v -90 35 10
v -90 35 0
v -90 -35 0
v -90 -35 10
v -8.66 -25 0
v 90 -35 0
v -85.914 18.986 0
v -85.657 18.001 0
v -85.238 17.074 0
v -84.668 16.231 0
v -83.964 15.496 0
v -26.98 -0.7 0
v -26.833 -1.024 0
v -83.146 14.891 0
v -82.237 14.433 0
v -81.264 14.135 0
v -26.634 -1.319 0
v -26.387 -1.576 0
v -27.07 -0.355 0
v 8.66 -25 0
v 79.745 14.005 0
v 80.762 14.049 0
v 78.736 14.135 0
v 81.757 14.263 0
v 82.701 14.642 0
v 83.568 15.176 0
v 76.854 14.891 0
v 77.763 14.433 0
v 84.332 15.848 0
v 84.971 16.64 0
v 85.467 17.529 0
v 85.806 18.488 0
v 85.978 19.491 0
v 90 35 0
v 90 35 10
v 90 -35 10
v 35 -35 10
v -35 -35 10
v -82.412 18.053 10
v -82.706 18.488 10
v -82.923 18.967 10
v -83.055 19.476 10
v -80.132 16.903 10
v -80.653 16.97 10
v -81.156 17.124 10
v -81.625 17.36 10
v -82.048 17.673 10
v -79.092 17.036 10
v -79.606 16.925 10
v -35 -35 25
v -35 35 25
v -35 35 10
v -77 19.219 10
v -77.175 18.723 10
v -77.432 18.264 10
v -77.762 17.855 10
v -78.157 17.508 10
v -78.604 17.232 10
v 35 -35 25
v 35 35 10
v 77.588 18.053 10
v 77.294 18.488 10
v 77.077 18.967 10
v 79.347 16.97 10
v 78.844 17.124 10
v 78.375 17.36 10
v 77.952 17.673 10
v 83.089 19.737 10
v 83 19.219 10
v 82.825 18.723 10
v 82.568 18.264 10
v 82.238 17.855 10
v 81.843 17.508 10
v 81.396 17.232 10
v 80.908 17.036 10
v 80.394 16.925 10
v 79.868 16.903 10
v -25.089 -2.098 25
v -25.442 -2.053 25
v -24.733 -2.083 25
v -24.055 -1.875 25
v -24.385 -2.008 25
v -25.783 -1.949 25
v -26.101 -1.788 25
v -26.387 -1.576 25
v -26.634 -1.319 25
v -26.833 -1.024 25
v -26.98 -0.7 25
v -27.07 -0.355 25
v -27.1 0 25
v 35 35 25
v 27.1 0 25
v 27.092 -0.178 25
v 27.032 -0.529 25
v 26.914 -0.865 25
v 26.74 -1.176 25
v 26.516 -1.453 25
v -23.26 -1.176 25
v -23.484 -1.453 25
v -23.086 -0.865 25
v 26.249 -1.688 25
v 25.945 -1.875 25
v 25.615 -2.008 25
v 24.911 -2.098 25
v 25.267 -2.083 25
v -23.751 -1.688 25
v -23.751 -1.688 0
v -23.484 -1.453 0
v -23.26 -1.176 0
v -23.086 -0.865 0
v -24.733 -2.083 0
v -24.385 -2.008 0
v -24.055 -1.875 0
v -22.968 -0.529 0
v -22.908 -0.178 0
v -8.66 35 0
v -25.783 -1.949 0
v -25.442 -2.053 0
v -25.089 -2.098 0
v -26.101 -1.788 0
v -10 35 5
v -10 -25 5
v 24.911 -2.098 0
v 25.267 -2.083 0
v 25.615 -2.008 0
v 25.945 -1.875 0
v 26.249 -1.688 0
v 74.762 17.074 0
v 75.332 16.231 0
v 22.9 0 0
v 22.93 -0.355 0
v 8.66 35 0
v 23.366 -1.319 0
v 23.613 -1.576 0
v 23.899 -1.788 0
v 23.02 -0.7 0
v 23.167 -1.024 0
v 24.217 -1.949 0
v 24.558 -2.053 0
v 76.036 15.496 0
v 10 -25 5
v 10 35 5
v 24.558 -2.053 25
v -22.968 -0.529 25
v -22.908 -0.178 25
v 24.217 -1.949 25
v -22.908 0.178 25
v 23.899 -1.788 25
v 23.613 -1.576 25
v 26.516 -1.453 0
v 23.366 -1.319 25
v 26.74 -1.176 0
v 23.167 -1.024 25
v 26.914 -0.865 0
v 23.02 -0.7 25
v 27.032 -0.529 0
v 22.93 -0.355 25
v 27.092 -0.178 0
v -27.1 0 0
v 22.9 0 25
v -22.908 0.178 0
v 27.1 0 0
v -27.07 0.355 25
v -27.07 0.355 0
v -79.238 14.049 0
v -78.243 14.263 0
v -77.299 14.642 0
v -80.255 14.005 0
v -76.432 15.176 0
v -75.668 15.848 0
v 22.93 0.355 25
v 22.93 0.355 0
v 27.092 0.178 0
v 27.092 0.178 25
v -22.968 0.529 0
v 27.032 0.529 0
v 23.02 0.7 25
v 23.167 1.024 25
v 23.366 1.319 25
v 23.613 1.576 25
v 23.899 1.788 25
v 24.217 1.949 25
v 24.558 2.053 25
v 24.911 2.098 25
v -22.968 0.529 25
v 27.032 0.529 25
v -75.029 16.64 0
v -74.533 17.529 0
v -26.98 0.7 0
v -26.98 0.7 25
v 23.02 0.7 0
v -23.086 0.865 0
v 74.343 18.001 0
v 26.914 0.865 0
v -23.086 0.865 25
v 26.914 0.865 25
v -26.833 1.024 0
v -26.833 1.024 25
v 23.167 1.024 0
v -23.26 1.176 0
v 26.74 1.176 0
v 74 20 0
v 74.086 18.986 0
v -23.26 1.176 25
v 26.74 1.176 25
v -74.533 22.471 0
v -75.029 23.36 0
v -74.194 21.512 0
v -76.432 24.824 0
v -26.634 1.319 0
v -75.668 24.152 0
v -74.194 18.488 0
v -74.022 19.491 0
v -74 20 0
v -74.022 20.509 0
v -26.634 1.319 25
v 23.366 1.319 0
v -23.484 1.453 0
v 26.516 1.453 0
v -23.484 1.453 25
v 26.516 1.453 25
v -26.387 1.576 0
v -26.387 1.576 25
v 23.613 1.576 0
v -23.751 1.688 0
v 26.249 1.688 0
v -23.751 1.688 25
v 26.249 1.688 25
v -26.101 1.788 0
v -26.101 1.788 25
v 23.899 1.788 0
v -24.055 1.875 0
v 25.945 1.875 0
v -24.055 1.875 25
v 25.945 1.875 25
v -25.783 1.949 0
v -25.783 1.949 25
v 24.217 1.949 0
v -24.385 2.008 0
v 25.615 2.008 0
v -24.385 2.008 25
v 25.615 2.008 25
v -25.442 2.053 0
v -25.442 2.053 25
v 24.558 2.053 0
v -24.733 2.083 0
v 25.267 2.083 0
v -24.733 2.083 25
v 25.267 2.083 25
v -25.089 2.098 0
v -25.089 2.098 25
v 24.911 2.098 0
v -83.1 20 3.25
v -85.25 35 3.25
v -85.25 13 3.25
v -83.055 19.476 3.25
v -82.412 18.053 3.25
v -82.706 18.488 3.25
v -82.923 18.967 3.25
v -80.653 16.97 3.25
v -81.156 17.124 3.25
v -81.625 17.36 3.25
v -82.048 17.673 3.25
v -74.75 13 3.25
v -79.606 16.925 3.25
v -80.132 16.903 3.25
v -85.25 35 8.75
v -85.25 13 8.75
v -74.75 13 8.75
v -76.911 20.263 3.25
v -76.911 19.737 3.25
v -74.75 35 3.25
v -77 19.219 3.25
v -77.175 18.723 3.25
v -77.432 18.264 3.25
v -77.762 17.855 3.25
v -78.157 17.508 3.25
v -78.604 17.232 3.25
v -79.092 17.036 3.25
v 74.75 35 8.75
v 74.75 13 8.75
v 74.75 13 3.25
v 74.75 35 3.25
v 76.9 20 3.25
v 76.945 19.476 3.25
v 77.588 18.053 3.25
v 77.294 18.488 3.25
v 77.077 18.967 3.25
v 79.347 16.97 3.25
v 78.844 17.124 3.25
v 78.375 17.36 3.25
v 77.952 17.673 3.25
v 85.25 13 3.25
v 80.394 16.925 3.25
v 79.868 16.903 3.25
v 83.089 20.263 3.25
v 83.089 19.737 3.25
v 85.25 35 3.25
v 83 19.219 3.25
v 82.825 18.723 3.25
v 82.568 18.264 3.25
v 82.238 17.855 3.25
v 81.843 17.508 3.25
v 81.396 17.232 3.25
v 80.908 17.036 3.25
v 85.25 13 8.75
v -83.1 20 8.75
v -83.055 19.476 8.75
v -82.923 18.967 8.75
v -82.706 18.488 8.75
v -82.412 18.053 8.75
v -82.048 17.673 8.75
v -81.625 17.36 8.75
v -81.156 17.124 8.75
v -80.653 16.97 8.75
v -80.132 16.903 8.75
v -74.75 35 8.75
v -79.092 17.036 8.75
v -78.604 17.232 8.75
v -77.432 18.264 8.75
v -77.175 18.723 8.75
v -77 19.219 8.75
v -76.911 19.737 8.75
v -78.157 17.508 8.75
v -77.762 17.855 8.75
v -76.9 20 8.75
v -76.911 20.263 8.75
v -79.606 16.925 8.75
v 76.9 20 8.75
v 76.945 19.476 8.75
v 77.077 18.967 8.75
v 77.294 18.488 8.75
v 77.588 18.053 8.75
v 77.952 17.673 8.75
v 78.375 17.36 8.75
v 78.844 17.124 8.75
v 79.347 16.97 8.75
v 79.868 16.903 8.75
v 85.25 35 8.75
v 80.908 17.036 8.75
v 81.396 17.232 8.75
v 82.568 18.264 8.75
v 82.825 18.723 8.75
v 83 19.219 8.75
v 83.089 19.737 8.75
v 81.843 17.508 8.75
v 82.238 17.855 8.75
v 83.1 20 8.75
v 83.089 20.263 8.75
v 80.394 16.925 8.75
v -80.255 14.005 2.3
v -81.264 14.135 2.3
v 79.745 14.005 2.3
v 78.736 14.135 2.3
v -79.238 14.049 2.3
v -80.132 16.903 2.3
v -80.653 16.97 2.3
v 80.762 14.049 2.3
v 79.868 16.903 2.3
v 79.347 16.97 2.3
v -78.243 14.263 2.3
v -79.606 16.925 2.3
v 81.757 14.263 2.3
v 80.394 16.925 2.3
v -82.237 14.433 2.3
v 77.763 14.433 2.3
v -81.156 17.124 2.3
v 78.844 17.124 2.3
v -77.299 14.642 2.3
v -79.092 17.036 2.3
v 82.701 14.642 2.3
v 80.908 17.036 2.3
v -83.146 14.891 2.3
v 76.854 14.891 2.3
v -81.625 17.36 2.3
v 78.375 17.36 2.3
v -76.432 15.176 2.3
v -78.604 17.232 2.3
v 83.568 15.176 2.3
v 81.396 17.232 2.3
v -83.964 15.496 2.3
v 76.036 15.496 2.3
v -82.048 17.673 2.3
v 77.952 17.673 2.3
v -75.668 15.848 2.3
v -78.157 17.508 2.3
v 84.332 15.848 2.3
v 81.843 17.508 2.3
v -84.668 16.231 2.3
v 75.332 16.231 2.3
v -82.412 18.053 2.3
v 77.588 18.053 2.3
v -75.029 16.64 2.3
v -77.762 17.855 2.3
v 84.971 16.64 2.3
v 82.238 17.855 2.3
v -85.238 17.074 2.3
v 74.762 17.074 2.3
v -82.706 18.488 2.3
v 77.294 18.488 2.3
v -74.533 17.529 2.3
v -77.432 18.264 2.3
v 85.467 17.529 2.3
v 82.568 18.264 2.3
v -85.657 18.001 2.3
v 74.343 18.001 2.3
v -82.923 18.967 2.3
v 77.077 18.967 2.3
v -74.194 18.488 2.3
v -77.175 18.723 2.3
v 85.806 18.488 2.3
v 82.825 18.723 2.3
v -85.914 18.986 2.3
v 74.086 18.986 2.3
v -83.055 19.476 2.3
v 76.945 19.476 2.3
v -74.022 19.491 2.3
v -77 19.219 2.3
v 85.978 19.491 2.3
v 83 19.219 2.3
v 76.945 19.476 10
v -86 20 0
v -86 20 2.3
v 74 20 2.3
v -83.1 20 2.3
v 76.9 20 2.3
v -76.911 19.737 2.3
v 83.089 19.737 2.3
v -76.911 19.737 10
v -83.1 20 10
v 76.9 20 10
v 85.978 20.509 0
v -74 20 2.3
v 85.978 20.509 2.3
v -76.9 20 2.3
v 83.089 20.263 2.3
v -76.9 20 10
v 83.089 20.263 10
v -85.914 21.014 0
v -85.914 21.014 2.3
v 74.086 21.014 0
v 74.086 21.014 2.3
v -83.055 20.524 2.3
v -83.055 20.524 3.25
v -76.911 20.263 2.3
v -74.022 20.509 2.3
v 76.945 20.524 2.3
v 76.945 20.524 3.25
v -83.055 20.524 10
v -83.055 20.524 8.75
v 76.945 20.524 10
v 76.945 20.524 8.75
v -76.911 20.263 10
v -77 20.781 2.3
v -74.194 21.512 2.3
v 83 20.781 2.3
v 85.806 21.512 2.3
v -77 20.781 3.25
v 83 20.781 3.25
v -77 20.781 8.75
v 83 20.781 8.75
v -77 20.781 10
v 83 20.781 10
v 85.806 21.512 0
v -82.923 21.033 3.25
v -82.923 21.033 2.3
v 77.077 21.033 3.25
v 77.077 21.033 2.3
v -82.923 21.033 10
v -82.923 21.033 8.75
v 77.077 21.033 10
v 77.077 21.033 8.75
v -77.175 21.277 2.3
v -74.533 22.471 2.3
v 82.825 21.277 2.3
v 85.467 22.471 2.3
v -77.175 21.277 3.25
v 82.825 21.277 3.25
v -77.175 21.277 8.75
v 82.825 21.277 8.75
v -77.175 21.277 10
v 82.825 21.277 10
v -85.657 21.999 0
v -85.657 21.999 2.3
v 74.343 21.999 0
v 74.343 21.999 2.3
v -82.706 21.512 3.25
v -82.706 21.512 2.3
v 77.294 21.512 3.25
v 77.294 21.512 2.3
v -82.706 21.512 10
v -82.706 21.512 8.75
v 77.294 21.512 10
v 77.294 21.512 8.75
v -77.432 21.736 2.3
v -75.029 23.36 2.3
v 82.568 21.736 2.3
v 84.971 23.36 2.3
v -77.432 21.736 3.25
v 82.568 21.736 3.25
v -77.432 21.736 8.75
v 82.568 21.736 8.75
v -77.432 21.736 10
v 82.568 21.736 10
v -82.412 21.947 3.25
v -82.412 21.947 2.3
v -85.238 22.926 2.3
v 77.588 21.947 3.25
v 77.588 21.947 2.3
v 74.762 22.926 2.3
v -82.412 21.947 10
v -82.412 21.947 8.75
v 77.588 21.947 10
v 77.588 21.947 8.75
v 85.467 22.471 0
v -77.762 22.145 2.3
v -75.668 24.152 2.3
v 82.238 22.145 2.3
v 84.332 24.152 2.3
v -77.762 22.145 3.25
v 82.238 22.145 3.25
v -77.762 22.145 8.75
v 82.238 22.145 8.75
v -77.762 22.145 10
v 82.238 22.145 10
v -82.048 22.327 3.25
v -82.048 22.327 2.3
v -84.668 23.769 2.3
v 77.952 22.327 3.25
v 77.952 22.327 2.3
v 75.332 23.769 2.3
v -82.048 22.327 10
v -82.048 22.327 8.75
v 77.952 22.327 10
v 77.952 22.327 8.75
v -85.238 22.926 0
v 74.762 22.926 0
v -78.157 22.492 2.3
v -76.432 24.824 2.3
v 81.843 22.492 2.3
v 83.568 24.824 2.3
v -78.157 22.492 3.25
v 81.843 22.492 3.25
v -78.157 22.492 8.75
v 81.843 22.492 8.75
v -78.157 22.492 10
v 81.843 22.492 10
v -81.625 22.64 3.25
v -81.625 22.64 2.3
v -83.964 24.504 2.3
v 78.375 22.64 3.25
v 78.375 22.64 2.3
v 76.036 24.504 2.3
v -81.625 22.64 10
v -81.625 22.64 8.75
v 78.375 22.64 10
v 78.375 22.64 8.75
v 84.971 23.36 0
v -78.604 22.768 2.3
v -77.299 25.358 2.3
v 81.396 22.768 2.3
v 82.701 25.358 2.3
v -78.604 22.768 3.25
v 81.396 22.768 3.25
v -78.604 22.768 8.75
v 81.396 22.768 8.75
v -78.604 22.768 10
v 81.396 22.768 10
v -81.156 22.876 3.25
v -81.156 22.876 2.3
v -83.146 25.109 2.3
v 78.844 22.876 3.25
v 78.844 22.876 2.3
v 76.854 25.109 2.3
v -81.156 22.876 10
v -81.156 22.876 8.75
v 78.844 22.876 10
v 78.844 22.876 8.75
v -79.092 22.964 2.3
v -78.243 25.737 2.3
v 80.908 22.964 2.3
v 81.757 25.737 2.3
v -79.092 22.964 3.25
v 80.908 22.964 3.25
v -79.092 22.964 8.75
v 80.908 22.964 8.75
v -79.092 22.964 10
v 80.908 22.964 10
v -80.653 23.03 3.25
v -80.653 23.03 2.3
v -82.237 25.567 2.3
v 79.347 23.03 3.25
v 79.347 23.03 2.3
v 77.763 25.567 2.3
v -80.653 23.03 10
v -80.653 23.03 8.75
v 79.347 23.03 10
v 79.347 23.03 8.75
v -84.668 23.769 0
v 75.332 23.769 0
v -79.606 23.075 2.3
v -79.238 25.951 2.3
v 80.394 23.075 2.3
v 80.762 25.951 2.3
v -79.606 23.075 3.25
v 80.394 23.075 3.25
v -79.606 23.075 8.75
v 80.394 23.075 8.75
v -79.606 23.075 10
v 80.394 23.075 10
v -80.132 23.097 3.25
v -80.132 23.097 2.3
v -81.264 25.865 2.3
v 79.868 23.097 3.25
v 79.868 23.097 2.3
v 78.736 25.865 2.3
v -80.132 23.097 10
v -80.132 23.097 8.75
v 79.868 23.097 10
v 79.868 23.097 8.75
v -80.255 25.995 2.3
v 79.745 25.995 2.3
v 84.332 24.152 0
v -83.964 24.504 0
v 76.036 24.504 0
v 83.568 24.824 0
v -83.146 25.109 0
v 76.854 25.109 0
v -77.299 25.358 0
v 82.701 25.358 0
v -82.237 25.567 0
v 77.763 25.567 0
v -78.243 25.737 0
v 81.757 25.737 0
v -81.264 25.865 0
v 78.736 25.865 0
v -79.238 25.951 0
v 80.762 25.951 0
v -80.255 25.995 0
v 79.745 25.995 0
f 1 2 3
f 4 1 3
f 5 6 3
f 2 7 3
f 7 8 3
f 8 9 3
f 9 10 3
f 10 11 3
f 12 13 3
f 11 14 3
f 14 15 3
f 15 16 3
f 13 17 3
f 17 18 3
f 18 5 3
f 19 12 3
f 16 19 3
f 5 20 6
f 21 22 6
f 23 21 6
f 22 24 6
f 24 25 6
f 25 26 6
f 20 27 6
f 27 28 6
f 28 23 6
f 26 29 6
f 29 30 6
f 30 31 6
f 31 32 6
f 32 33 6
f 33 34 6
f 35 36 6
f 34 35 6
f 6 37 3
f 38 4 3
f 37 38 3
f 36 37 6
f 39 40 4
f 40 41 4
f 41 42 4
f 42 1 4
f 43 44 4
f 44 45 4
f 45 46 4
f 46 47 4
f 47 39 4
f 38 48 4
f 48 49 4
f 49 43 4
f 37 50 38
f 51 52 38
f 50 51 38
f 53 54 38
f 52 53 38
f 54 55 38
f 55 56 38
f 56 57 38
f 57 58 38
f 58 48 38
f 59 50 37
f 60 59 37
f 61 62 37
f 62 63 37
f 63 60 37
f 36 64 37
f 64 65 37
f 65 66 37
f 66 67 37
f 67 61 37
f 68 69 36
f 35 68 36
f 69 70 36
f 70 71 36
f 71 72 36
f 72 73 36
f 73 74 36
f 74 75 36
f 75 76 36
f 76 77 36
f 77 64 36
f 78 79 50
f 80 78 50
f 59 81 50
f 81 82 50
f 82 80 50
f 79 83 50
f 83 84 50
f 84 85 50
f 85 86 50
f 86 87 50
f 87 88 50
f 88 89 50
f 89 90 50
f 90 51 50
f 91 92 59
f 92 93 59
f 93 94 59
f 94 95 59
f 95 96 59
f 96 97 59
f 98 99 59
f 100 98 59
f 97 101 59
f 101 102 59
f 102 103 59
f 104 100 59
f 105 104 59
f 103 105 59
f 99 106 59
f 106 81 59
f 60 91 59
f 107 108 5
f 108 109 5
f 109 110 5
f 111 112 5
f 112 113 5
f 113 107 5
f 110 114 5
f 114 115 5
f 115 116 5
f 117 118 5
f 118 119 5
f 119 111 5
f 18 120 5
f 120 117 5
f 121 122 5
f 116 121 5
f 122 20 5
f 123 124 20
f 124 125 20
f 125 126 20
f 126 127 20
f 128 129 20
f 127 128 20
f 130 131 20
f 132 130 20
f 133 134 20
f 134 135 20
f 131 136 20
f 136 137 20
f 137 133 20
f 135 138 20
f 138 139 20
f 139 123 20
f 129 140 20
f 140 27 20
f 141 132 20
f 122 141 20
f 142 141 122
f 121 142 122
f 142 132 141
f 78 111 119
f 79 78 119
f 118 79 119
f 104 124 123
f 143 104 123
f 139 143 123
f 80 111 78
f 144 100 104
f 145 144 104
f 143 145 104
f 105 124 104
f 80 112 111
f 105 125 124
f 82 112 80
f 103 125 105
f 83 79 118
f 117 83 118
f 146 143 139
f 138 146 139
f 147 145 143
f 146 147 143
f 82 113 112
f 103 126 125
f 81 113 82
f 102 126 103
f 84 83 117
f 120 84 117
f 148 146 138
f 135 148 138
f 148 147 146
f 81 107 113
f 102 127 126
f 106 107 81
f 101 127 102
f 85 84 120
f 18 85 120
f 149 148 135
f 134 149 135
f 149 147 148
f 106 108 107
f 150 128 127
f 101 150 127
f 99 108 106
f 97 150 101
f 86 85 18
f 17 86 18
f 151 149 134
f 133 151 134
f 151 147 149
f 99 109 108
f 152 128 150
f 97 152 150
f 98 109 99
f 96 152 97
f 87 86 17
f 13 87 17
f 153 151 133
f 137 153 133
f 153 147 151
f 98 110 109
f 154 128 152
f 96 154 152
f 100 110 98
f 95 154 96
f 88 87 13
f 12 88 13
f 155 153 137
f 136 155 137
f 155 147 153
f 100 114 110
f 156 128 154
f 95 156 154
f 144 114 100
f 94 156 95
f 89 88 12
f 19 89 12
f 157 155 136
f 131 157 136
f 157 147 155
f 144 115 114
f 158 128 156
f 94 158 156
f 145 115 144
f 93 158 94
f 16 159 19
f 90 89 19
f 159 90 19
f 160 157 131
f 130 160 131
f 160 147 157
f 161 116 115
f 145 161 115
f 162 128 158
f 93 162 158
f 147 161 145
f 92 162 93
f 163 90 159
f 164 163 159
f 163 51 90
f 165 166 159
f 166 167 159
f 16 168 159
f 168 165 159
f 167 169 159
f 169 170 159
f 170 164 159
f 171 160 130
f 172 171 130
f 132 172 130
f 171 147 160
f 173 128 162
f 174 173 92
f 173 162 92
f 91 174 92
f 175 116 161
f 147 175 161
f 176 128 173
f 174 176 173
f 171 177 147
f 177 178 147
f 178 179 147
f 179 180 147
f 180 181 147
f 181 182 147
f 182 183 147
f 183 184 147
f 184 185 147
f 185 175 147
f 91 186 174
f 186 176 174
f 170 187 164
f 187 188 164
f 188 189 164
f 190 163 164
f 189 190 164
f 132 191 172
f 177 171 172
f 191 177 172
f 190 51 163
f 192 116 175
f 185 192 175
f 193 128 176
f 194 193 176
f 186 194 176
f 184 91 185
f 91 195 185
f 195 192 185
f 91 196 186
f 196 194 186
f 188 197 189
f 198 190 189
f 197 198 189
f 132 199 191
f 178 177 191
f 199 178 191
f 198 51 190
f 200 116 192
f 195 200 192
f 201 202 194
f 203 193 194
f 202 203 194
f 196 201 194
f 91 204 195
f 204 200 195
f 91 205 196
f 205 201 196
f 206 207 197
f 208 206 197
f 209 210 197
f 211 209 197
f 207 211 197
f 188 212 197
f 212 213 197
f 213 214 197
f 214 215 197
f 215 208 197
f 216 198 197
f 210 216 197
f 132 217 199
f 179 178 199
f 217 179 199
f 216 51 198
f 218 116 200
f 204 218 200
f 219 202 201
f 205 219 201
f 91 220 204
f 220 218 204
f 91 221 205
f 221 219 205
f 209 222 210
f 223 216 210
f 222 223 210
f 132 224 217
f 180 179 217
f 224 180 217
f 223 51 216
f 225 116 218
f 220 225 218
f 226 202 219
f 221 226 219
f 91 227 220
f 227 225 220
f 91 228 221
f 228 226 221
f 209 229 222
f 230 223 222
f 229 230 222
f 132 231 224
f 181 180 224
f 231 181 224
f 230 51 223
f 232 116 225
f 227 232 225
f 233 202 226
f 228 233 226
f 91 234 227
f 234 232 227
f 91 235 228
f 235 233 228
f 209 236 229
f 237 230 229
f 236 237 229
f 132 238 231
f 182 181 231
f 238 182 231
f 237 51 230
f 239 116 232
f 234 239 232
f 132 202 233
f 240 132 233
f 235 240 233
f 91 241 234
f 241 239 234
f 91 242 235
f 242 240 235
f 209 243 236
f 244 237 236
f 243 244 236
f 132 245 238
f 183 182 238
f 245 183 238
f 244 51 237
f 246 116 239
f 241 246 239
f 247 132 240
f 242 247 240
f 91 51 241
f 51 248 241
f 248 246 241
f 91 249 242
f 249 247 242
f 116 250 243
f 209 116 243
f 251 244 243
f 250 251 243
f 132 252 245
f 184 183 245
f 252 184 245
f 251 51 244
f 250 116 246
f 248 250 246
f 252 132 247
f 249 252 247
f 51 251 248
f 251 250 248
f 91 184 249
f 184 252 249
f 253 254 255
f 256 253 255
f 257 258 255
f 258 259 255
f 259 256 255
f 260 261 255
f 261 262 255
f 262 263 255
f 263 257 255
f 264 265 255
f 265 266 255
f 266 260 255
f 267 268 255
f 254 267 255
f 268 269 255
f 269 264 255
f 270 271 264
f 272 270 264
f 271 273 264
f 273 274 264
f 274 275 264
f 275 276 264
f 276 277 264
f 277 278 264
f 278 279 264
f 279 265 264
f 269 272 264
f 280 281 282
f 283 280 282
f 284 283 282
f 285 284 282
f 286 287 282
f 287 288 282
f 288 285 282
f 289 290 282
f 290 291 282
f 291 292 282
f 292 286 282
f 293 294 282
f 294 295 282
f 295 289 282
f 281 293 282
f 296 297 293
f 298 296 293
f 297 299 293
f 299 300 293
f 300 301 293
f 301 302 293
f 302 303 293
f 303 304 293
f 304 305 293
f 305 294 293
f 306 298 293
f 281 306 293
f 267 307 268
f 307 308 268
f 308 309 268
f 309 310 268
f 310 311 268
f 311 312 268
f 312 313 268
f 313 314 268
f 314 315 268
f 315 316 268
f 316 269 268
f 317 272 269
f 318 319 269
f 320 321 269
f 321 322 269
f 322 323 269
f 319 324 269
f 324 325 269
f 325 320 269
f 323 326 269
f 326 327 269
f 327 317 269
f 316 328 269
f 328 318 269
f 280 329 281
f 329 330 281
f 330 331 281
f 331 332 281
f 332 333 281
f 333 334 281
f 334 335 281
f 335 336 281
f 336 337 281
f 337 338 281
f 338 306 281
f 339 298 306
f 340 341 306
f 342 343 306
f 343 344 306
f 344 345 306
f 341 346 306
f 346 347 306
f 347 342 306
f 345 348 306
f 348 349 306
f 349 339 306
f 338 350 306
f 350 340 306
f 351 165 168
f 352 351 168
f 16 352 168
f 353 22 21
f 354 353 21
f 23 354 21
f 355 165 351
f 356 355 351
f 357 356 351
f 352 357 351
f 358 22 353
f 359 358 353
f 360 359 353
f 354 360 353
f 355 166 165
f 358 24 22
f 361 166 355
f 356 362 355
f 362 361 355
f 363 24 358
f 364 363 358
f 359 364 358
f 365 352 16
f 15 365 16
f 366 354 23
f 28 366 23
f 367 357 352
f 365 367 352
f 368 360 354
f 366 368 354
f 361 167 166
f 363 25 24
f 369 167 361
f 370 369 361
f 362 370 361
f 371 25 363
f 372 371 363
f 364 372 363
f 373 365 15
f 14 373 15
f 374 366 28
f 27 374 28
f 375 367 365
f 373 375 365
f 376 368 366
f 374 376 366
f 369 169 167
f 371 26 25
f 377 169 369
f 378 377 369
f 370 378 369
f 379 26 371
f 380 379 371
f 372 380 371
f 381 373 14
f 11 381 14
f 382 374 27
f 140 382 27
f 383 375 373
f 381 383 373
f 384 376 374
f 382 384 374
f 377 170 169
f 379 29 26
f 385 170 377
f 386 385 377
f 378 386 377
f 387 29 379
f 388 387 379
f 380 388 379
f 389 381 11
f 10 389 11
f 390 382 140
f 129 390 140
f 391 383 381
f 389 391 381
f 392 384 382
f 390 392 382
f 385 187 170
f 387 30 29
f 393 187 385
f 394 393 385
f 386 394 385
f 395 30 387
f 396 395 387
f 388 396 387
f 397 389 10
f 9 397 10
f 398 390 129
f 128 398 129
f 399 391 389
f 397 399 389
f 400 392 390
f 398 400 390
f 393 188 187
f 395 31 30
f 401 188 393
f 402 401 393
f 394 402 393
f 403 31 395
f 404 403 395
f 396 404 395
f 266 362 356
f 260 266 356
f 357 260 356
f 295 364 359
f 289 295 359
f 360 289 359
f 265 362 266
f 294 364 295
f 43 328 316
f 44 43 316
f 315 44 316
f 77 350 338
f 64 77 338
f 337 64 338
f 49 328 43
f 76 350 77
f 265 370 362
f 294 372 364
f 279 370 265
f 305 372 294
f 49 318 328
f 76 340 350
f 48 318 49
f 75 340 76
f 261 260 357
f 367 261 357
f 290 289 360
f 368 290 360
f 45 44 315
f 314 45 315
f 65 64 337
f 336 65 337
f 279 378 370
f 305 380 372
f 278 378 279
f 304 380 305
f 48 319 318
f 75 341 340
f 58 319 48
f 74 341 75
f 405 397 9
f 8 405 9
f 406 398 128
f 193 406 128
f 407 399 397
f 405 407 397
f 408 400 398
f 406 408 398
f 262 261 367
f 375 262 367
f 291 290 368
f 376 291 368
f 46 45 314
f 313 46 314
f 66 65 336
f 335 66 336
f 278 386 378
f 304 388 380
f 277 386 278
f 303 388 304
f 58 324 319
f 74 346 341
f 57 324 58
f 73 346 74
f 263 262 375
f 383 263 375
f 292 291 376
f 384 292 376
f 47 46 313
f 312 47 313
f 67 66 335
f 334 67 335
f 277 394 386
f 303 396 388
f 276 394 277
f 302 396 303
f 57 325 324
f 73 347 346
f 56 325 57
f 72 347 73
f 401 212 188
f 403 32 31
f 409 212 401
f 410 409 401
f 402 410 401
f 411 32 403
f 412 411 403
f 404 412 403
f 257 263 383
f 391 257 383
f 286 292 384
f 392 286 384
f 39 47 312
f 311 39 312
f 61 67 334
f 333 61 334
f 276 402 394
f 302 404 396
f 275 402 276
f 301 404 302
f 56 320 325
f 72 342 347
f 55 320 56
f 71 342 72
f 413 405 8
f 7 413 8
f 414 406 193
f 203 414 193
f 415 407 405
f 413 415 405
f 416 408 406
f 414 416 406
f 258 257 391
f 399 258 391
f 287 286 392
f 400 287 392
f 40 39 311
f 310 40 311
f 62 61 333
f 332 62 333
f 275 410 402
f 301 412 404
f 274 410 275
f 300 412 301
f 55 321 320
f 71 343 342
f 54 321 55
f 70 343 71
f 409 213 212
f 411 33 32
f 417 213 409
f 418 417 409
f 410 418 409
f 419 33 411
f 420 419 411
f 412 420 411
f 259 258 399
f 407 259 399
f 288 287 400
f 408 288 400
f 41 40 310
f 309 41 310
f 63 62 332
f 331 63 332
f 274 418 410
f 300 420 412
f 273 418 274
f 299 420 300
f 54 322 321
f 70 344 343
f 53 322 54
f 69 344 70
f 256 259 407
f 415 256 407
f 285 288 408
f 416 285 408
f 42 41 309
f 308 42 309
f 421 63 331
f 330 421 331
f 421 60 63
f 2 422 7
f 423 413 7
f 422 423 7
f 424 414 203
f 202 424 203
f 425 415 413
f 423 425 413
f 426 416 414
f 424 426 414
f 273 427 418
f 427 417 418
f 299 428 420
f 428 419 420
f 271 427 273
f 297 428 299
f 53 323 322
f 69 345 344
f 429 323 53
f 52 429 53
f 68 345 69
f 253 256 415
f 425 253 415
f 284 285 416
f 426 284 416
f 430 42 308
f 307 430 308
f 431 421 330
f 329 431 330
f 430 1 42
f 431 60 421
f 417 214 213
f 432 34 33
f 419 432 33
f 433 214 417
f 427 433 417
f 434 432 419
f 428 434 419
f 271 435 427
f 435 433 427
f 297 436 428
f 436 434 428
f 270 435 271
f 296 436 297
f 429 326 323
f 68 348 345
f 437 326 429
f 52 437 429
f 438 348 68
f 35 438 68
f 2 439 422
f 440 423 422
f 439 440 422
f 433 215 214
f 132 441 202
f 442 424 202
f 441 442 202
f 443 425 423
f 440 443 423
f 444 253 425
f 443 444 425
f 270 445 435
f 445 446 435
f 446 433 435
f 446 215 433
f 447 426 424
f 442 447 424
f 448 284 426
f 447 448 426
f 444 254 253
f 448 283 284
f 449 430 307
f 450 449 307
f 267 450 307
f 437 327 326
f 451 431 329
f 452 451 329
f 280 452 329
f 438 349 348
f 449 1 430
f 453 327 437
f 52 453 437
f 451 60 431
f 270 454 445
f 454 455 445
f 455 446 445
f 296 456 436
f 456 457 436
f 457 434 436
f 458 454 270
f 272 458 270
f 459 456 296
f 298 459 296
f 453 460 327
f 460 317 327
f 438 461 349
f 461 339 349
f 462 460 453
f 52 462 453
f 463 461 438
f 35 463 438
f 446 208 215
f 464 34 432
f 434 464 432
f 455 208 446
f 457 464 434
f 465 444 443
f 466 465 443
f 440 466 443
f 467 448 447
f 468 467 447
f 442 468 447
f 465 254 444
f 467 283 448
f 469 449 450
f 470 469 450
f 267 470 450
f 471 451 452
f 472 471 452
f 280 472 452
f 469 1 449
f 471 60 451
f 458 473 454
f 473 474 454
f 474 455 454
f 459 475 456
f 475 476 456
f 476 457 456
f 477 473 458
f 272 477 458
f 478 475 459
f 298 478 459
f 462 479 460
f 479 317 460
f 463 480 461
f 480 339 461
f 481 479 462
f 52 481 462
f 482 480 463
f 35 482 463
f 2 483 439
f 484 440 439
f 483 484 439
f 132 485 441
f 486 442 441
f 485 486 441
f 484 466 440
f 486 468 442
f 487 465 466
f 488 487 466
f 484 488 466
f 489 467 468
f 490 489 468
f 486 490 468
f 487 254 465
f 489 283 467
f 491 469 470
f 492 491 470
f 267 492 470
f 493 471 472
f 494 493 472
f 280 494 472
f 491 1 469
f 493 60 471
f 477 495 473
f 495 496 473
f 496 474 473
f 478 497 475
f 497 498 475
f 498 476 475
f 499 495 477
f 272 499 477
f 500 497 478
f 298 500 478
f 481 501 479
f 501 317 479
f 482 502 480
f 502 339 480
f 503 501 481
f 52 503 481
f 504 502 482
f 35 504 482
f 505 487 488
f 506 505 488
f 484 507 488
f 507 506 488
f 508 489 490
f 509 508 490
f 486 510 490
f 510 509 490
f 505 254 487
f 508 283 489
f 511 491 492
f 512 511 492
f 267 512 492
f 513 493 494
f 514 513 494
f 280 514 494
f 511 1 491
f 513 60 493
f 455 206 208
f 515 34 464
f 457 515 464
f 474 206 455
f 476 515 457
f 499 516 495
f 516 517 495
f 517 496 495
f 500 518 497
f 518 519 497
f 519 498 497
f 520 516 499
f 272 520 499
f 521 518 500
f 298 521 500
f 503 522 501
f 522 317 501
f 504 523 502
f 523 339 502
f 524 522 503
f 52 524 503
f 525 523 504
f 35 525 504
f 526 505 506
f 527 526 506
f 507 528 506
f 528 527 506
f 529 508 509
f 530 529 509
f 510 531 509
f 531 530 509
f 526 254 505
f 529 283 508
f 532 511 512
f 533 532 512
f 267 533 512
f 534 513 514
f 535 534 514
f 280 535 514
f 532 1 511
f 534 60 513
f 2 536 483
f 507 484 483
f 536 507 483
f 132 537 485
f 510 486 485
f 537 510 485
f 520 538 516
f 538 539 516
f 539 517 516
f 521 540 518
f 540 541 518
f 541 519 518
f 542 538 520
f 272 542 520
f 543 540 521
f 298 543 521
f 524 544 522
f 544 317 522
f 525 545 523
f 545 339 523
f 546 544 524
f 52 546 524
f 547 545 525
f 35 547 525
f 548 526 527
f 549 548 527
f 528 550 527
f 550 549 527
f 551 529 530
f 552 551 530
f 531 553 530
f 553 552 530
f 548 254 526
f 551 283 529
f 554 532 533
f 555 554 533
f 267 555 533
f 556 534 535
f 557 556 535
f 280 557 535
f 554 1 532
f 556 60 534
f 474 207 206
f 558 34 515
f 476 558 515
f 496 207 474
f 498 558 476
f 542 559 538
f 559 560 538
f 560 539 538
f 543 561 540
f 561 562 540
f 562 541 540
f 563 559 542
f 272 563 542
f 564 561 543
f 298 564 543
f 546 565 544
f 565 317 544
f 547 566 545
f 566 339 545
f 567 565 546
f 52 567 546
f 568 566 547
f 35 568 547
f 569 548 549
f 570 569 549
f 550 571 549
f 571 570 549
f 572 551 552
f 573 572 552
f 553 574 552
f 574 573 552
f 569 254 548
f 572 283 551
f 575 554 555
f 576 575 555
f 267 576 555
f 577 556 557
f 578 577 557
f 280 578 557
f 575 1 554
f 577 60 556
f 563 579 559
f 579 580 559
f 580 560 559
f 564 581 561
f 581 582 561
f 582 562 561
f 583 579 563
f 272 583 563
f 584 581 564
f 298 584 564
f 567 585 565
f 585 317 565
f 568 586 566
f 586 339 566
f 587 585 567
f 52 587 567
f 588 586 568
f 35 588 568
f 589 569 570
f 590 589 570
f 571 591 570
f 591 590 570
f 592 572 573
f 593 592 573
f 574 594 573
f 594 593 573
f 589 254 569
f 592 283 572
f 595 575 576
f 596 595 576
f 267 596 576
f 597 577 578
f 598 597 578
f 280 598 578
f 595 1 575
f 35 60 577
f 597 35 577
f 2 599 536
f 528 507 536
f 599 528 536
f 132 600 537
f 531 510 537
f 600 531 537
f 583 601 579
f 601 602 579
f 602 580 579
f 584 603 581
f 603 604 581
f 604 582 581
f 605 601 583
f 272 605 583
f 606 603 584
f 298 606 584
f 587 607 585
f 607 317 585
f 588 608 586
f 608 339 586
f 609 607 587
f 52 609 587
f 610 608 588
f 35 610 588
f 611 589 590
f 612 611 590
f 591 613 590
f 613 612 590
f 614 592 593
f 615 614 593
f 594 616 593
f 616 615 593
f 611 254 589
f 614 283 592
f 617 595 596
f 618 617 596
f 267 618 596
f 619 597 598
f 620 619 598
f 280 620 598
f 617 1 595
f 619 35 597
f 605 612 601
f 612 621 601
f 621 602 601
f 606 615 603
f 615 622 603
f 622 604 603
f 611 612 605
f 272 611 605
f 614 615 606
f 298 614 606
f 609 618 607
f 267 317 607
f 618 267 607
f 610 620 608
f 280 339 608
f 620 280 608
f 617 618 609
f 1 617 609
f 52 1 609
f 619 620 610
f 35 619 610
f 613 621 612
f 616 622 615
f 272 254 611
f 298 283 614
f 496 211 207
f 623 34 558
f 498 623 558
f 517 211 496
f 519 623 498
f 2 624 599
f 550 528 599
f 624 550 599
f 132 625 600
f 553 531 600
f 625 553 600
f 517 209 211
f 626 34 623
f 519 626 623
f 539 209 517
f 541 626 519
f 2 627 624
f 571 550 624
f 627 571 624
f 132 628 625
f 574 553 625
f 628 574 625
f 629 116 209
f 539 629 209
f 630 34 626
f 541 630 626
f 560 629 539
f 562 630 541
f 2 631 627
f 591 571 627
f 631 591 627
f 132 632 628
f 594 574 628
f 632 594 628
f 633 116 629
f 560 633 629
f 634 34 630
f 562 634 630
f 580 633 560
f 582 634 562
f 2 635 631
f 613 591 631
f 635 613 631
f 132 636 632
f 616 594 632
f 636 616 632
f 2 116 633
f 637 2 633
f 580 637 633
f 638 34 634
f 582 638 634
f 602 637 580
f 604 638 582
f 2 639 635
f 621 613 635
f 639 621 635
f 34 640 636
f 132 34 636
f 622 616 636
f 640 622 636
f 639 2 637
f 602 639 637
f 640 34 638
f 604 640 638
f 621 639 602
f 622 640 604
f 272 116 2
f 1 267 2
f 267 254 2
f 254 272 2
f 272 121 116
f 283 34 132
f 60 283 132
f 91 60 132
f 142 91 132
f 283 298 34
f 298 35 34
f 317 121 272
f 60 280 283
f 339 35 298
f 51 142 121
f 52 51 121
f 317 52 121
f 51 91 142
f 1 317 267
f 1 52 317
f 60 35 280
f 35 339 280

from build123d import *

# Parameters (mm, degrees)
SKIZZE1_W                       = 180
SKIZZE1_H                       = 70
SKIZZE1_R                       = 2.1
SKIZZE1_R_2                     = 3.1
AUFSATZ_LINEAR_AUSTRAGEN2_DEPTH = 25
SKIZZE4_W                       = 55
SKIZZE4_H                       = 70
SCHNITT_LINEAR_AUSTRAGEN1_DEPTH = 15
SKIZZE5_W                       = 10.5
SKIZZE5_H                       = 5.5
SCHNITT_LINEAR_AUSTRAGEN2_DEPTH = 22
SKIZZE6_R                       = 6
SCHNITT_LINEAR_AUSTRAGEN3_DEPTH = 2.3
SCHNITT_LINEAR_AUSTRAGEN4_DEPTH = 60


with BuildPart() as part:
    # Skizze1 → Aufsatz-Linear austragen2 (new body)
    with BuildSketch(Plane.XY):
        Rectangle(SKIZZE1_W, SKIZZE1_H)
        with Locations((25, 0)):
            Circle(SKIZZE1_R, mode=Mode.SUBTRACT)
        with Locations(Location((-25, 0, 0), (0, 0, 180))):
            Circle(SKIZZE1_R, mode=Mode.SUBTRACT)
        with Locations((80, 20)):
            Circle(SKIZZE1_R_2, mode=Mode.SUBTRACT)
        with Locations(Location((-80, 20, 0), (0, 0, 180))):
            Circle(SKIZZE1_R_2, mode=Mode.SUBTRACT)
    extrude(amount=AUFSATZ_LINEAR_AUSTRAGEN2_DEPTH)

    # Skizze4 → Schnitt-Linear austragen1 (cut)
    with BuildSketch(Plane.XY.offset(25)):
        with Locations((62.5, 0)):
            Rectangle(SKIZZE4_W, SKIZZE4_H)
        with Locations((-62.5, 0)):
            Rectangle(SKIZZE4_W, SKIZZE4_H)
    extrude(amount=-SCHNITT_LINEAR_AUSTRAGEN1_DEPTH, mode=Mode.SUBTRACT)

    # Skizze5 → Schnitt-Linear austragen2 (cut)
    with BuildSketch(Plane(origin=(0, 35, 0), x_dir=(1, 0, 0), z_dir=(0, 1, 0))):
        with Locations((80, -6)):
            Rectangle(SKIZZE5_W, SKIZZE5_H)
        with Locations((-80, -6)):
            Rectangle(SKIZZE5_W, SKIZZE5_H)
    extrude(amount=-SCHNITT_LINEAR_AUSTRAGEN2_DEPTH, mode=Mode.SUBTRACT)

    # Skizze6 → Schnitt-Linear austragen3 (cut)
    with BuildSketch(Plane(origin=(0, 0, 0), x_dir=(-1, 0, 0), z_dir=(0, 0, -1))):
        with Locations((-80, 20)):
            Circle(SKIZZE6_R)
        with Locations(Location((80, 20, 0), (0, 0, 180))):
            Circle(SKIZZE6_R)
    extrude(amount=-SCHNITT_LINEAR_AUSTRAGEN3_DEPTH, mode=Mode.SUBTRACT)

    # Skizze7 → Schnitt-Linear austragen4 (cut)
    with BuildSketch(Plane(origin=(0, 35, 0), x_dir=(1, 0, 0), z_dir=(0, 1, 0))):
        Polygon((8.660254038, 0), (-8.660254038, 0), (-10, -5), (10, -5), align=None)
    extrude(amount=-SCHNITT_LINEAR_AUSTRAGEN4_DEPTH, mode=Mode.SUBTRACT)


solid = part.part
